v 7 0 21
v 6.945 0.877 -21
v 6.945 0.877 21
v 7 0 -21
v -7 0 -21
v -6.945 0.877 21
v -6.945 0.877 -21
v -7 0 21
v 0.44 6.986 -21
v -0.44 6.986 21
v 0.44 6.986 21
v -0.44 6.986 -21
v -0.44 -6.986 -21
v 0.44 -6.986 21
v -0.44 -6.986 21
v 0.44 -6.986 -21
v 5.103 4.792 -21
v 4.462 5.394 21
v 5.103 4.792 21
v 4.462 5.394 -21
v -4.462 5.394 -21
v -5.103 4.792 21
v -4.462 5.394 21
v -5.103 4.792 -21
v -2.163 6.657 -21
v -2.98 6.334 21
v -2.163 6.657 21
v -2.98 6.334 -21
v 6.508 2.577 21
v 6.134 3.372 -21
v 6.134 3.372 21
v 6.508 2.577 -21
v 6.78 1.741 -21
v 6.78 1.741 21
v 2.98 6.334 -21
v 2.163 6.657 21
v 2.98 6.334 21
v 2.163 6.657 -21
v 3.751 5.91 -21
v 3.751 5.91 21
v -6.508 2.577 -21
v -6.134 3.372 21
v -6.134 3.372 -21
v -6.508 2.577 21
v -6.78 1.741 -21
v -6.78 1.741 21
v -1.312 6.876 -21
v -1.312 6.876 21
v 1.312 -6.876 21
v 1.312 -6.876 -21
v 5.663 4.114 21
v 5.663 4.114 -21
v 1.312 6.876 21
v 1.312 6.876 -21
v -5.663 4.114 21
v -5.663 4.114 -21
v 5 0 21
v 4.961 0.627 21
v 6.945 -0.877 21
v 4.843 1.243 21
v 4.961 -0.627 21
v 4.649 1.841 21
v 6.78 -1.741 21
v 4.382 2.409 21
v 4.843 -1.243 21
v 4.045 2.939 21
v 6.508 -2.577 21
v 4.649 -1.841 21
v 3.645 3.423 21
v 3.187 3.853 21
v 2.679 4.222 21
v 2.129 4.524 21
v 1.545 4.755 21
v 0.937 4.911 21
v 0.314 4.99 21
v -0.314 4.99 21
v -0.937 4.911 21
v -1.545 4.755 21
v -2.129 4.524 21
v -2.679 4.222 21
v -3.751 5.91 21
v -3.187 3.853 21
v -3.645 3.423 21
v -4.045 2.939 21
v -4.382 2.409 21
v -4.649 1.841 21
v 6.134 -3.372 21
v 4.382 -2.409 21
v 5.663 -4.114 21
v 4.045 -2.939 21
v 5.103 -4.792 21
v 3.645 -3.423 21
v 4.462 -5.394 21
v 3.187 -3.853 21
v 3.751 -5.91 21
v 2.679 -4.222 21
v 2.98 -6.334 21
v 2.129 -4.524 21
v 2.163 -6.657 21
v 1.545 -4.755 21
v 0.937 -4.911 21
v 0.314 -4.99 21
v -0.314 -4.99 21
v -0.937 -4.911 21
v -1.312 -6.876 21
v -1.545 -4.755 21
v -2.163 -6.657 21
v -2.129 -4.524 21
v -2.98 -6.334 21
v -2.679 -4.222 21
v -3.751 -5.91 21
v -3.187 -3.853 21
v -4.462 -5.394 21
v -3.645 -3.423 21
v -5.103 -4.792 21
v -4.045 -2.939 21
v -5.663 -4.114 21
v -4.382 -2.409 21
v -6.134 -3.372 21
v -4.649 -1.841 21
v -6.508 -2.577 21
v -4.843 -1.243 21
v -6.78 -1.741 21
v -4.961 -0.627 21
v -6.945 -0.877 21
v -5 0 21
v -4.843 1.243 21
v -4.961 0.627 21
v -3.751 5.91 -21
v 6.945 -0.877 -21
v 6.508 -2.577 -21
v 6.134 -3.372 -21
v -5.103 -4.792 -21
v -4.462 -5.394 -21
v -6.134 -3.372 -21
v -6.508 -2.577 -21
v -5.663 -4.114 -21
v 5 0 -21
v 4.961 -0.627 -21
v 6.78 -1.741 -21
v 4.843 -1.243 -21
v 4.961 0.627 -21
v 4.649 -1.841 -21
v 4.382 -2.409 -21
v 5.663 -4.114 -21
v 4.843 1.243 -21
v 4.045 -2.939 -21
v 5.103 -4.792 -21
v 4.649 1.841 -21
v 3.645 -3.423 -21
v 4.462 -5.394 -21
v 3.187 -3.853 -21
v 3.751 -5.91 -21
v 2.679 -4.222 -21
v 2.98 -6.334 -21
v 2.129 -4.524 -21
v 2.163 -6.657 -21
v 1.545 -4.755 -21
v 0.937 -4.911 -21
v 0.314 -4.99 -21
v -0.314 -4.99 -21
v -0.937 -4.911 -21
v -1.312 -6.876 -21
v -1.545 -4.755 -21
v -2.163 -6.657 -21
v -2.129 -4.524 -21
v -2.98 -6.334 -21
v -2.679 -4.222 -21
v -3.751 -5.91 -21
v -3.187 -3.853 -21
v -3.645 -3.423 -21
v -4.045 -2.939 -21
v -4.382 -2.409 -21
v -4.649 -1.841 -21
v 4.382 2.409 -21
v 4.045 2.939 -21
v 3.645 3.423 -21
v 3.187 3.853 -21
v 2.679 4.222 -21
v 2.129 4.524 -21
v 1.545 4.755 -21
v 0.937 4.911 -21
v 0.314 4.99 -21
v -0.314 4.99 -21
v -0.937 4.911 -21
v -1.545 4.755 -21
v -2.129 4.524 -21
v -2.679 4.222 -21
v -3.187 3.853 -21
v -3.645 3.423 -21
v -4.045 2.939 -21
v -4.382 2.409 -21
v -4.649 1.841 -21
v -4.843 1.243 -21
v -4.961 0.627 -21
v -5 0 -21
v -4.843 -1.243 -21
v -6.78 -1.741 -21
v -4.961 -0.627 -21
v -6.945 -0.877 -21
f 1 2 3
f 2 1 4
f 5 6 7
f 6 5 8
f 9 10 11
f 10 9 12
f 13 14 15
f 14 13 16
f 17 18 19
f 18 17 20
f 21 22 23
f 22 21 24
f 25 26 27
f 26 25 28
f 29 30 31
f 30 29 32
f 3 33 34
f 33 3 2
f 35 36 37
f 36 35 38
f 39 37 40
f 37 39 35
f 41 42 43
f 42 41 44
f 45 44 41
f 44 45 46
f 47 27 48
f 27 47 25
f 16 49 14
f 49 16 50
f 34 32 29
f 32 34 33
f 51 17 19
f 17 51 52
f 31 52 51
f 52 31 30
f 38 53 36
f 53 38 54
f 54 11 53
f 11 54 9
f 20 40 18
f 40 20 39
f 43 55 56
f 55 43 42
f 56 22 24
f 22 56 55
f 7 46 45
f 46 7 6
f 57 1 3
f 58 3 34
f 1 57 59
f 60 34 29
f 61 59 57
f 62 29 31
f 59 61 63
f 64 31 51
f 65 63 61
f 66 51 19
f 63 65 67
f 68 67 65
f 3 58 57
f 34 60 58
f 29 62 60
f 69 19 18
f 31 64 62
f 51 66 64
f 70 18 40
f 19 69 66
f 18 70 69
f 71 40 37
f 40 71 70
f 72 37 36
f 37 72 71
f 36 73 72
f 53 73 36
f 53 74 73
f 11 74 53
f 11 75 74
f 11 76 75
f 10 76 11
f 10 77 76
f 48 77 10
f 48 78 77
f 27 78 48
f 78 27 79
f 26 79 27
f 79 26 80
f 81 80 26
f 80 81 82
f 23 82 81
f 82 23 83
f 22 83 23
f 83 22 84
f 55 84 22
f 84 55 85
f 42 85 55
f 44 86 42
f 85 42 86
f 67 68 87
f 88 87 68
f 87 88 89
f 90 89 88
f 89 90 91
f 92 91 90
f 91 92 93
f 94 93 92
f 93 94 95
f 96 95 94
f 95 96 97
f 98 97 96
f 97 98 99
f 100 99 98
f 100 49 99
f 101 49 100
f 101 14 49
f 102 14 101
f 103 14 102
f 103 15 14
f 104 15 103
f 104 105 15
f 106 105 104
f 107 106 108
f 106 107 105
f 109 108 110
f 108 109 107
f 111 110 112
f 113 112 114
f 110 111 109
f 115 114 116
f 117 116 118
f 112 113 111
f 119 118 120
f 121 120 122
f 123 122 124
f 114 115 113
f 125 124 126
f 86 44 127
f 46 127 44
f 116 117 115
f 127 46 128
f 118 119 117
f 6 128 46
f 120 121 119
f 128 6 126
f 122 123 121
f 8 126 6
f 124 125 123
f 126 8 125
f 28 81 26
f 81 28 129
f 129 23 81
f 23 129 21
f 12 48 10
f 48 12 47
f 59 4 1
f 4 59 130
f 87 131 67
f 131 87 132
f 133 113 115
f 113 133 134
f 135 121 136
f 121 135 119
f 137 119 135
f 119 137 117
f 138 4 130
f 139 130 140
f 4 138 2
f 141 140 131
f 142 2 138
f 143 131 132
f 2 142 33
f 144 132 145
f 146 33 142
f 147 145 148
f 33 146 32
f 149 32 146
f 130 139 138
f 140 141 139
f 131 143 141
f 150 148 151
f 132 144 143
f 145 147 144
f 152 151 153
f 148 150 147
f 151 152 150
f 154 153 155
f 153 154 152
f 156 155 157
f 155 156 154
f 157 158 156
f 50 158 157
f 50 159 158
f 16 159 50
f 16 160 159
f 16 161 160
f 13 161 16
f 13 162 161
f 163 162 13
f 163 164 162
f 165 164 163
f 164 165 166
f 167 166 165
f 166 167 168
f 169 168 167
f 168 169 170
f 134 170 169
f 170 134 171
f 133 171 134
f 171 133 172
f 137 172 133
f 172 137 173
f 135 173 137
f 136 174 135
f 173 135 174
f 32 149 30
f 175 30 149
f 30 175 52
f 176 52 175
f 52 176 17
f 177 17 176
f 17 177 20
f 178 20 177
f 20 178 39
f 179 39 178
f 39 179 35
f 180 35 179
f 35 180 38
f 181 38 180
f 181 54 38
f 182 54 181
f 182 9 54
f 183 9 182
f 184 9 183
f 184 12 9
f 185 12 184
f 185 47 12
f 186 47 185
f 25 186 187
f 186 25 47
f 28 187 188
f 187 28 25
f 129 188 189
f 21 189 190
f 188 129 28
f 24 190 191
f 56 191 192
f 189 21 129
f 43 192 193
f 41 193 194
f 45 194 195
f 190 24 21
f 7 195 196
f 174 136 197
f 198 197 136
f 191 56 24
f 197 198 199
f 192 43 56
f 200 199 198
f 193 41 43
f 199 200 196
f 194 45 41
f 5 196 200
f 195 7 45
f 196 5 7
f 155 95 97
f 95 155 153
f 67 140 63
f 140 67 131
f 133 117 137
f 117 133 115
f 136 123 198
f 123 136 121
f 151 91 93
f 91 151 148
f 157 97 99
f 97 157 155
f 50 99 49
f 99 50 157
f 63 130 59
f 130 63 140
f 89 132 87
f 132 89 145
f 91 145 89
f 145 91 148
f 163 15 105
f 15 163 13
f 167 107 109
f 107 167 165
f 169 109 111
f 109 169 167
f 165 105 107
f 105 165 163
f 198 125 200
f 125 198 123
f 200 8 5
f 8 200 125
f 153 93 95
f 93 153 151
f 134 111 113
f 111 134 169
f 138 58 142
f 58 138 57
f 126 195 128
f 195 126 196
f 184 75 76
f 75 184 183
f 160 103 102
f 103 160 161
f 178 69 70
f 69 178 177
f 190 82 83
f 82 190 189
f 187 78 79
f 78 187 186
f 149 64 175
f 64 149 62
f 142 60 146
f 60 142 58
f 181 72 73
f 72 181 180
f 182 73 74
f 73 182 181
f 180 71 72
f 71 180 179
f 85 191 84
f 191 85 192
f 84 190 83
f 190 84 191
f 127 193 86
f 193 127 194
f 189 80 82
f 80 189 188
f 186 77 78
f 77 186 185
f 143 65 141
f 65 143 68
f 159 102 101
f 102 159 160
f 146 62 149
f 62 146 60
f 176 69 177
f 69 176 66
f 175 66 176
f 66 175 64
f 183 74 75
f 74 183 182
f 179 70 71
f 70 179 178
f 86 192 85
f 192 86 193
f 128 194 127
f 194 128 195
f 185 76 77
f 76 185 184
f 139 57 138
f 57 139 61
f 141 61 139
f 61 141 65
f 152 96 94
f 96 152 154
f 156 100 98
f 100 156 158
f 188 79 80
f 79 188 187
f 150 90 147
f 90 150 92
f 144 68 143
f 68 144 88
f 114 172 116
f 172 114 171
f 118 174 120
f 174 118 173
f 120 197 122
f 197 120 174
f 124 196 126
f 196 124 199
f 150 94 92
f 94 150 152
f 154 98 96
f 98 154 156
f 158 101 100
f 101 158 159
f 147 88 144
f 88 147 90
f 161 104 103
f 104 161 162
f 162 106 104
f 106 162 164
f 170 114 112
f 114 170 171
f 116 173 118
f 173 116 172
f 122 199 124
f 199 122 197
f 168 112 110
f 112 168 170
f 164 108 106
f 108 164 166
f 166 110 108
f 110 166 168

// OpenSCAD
$fn = 50;


difference() {
	union() {
		translate(v = [0, 0, -21.0000000000]) {
			cylinder(h = 42, r = 7.0000000000);
		}
	}
	union() {
		translate(v = [0, 0, -100.0000000000]) {
			cylinder(h = 200, r = 5.0000000000);
		}
	}
}
